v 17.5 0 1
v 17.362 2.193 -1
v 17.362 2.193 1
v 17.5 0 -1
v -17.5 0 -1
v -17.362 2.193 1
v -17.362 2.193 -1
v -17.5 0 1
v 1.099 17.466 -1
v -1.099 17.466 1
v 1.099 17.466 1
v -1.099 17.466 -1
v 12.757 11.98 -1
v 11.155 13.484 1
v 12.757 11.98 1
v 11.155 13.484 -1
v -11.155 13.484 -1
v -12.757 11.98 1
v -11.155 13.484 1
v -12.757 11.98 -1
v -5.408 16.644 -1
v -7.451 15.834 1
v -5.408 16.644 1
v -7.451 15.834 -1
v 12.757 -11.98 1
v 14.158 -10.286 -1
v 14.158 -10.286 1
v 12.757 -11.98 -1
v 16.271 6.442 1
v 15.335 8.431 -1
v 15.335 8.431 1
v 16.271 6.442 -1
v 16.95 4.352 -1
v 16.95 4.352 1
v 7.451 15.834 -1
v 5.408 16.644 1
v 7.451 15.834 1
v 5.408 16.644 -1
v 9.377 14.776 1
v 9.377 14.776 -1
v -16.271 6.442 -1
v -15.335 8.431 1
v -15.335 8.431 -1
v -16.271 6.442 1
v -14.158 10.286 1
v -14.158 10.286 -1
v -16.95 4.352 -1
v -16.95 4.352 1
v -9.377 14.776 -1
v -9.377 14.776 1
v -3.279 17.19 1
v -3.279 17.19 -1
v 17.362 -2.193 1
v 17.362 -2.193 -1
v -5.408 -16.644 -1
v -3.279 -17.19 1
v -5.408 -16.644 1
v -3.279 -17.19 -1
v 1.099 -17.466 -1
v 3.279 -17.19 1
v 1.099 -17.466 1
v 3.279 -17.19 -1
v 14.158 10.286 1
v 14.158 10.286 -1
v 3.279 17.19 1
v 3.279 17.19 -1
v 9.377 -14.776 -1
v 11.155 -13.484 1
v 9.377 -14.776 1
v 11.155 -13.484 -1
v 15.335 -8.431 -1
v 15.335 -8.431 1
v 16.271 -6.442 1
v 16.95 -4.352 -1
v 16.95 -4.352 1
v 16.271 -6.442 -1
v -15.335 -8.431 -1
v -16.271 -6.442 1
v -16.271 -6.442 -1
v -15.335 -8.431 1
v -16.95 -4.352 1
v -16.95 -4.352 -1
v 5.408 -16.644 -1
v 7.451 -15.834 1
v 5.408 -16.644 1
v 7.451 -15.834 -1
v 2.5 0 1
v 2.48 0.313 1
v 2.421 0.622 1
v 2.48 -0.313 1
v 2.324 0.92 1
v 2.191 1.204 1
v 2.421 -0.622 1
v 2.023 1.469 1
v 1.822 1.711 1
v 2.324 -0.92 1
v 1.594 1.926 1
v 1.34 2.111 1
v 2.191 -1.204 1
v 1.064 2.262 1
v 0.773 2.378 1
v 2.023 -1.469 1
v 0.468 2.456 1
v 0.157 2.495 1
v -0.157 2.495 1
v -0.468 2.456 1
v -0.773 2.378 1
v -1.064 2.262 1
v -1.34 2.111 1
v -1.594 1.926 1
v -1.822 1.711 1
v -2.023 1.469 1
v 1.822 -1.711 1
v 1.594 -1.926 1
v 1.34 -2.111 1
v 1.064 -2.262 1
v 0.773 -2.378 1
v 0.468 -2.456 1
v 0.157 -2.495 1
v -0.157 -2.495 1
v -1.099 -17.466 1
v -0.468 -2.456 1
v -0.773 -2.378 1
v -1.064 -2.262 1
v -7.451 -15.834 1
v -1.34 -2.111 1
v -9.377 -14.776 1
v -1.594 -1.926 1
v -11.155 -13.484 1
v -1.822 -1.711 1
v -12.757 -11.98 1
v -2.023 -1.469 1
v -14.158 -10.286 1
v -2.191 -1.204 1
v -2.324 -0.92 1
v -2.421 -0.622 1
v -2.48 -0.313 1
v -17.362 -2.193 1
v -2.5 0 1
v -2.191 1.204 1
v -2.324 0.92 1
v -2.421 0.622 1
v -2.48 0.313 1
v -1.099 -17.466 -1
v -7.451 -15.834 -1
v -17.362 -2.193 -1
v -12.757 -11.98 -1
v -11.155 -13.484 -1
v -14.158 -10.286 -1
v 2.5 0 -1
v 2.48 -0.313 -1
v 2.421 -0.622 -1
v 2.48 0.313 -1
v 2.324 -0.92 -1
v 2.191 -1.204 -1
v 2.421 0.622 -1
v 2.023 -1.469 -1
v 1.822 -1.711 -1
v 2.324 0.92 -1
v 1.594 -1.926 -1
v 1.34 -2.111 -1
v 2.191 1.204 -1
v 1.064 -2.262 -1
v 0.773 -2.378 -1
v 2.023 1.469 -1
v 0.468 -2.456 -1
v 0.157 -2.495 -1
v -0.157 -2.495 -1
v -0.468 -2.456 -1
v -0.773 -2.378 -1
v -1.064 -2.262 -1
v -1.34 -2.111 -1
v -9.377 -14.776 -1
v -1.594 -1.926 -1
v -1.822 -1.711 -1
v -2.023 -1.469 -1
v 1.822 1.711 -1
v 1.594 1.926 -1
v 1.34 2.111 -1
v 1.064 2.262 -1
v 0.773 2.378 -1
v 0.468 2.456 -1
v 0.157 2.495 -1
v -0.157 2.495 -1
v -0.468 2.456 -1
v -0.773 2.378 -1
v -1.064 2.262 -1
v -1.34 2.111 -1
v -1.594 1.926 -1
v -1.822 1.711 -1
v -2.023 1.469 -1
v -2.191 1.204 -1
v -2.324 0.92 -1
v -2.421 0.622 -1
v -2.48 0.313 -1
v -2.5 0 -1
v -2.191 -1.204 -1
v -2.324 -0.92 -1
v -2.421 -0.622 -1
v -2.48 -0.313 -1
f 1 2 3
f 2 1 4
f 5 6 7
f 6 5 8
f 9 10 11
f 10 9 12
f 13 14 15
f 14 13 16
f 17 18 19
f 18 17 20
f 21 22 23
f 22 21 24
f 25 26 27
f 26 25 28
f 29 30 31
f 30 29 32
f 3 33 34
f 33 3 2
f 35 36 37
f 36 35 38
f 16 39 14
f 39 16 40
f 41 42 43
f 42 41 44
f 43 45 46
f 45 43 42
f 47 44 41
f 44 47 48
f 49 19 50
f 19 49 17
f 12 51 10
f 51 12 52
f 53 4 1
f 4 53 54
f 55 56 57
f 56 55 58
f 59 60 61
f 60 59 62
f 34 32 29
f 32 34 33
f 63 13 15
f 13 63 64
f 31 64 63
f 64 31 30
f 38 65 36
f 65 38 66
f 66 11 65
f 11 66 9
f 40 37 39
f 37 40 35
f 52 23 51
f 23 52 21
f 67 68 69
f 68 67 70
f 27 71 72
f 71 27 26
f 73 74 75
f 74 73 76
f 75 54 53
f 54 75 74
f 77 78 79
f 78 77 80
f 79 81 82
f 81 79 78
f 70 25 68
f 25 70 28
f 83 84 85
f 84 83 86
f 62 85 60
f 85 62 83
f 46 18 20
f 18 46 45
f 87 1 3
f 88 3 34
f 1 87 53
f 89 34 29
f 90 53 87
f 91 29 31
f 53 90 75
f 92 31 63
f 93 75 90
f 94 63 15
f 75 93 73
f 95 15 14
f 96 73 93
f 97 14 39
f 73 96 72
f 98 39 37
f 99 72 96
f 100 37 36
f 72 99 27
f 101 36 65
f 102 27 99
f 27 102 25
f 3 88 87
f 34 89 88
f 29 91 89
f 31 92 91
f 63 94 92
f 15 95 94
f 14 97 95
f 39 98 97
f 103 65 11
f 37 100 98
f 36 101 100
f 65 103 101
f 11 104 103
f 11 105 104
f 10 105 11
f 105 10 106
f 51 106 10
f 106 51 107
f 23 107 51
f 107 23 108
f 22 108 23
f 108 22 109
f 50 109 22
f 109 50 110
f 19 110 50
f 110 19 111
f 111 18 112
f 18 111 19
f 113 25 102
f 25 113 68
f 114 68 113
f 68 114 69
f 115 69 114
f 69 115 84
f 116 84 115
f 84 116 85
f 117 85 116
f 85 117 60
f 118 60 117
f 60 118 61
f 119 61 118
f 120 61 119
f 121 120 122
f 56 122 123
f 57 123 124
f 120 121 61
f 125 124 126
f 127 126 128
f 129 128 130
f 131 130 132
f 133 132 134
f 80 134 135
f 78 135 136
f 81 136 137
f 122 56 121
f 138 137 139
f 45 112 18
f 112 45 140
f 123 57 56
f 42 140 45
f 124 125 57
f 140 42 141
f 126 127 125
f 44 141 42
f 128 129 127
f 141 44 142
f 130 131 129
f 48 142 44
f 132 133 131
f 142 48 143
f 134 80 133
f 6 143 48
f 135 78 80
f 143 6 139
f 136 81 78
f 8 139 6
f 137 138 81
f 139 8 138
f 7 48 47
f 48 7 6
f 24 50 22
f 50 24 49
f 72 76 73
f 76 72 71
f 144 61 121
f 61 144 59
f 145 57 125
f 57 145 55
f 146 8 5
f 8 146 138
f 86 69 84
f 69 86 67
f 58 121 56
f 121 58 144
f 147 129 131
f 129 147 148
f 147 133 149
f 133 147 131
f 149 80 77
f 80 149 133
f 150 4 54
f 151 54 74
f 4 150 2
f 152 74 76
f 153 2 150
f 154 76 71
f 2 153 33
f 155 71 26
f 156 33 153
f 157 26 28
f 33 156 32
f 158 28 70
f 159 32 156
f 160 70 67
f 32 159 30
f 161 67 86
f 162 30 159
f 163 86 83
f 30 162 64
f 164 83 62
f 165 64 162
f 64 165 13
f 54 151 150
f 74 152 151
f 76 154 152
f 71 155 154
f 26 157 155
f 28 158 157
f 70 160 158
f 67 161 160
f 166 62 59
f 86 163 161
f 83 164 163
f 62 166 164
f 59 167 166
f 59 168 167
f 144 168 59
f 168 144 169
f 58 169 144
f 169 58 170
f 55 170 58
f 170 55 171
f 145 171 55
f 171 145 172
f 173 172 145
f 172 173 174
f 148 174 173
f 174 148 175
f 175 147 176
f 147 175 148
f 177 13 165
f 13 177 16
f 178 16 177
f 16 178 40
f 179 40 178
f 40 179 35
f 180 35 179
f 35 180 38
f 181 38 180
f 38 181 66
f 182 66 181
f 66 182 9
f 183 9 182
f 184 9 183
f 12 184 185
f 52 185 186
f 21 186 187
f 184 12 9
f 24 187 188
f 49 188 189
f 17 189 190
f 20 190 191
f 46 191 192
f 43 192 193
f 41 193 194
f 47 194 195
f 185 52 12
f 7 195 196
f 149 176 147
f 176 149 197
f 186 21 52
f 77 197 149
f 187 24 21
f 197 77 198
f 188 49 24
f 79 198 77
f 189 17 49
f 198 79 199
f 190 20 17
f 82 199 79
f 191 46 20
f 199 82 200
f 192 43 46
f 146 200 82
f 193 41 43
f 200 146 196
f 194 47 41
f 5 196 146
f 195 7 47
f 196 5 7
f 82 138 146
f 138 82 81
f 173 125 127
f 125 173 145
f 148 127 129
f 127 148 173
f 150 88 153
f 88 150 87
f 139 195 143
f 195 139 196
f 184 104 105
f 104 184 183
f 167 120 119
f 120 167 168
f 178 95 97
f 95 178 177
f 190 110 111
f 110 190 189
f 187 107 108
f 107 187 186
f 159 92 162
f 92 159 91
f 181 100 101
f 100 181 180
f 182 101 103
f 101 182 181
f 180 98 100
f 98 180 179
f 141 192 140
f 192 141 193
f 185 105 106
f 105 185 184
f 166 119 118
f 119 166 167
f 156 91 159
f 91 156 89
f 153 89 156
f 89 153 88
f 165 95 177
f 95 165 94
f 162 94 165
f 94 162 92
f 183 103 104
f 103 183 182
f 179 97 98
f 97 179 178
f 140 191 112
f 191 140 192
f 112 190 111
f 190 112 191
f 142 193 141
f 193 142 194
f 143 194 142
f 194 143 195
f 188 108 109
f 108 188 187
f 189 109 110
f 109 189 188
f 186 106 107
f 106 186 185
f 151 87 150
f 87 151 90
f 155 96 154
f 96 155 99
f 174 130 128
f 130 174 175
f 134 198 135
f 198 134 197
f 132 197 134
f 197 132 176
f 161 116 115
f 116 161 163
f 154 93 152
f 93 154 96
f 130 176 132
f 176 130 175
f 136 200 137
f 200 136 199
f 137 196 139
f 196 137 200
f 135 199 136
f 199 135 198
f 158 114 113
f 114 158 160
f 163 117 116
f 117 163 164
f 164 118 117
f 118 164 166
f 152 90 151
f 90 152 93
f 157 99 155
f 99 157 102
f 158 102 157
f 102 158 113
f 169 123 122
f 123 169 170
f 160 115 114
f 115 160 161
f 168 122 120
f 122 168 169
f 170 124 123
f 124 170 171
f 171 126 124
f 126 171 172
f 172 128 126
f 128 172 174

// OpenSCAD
$fn = 50;


difference() {
	union() {
		translate(v = [0, 0, -1.0000000000]) {
			cylinder(h = 2, r = 17.5000000000);
		}
	}
	union() {
		translate(v = [0, 0, -100.0000000000]) {
			cylinder(h = 200, r = 2.5000000000);
		}
	}
}
